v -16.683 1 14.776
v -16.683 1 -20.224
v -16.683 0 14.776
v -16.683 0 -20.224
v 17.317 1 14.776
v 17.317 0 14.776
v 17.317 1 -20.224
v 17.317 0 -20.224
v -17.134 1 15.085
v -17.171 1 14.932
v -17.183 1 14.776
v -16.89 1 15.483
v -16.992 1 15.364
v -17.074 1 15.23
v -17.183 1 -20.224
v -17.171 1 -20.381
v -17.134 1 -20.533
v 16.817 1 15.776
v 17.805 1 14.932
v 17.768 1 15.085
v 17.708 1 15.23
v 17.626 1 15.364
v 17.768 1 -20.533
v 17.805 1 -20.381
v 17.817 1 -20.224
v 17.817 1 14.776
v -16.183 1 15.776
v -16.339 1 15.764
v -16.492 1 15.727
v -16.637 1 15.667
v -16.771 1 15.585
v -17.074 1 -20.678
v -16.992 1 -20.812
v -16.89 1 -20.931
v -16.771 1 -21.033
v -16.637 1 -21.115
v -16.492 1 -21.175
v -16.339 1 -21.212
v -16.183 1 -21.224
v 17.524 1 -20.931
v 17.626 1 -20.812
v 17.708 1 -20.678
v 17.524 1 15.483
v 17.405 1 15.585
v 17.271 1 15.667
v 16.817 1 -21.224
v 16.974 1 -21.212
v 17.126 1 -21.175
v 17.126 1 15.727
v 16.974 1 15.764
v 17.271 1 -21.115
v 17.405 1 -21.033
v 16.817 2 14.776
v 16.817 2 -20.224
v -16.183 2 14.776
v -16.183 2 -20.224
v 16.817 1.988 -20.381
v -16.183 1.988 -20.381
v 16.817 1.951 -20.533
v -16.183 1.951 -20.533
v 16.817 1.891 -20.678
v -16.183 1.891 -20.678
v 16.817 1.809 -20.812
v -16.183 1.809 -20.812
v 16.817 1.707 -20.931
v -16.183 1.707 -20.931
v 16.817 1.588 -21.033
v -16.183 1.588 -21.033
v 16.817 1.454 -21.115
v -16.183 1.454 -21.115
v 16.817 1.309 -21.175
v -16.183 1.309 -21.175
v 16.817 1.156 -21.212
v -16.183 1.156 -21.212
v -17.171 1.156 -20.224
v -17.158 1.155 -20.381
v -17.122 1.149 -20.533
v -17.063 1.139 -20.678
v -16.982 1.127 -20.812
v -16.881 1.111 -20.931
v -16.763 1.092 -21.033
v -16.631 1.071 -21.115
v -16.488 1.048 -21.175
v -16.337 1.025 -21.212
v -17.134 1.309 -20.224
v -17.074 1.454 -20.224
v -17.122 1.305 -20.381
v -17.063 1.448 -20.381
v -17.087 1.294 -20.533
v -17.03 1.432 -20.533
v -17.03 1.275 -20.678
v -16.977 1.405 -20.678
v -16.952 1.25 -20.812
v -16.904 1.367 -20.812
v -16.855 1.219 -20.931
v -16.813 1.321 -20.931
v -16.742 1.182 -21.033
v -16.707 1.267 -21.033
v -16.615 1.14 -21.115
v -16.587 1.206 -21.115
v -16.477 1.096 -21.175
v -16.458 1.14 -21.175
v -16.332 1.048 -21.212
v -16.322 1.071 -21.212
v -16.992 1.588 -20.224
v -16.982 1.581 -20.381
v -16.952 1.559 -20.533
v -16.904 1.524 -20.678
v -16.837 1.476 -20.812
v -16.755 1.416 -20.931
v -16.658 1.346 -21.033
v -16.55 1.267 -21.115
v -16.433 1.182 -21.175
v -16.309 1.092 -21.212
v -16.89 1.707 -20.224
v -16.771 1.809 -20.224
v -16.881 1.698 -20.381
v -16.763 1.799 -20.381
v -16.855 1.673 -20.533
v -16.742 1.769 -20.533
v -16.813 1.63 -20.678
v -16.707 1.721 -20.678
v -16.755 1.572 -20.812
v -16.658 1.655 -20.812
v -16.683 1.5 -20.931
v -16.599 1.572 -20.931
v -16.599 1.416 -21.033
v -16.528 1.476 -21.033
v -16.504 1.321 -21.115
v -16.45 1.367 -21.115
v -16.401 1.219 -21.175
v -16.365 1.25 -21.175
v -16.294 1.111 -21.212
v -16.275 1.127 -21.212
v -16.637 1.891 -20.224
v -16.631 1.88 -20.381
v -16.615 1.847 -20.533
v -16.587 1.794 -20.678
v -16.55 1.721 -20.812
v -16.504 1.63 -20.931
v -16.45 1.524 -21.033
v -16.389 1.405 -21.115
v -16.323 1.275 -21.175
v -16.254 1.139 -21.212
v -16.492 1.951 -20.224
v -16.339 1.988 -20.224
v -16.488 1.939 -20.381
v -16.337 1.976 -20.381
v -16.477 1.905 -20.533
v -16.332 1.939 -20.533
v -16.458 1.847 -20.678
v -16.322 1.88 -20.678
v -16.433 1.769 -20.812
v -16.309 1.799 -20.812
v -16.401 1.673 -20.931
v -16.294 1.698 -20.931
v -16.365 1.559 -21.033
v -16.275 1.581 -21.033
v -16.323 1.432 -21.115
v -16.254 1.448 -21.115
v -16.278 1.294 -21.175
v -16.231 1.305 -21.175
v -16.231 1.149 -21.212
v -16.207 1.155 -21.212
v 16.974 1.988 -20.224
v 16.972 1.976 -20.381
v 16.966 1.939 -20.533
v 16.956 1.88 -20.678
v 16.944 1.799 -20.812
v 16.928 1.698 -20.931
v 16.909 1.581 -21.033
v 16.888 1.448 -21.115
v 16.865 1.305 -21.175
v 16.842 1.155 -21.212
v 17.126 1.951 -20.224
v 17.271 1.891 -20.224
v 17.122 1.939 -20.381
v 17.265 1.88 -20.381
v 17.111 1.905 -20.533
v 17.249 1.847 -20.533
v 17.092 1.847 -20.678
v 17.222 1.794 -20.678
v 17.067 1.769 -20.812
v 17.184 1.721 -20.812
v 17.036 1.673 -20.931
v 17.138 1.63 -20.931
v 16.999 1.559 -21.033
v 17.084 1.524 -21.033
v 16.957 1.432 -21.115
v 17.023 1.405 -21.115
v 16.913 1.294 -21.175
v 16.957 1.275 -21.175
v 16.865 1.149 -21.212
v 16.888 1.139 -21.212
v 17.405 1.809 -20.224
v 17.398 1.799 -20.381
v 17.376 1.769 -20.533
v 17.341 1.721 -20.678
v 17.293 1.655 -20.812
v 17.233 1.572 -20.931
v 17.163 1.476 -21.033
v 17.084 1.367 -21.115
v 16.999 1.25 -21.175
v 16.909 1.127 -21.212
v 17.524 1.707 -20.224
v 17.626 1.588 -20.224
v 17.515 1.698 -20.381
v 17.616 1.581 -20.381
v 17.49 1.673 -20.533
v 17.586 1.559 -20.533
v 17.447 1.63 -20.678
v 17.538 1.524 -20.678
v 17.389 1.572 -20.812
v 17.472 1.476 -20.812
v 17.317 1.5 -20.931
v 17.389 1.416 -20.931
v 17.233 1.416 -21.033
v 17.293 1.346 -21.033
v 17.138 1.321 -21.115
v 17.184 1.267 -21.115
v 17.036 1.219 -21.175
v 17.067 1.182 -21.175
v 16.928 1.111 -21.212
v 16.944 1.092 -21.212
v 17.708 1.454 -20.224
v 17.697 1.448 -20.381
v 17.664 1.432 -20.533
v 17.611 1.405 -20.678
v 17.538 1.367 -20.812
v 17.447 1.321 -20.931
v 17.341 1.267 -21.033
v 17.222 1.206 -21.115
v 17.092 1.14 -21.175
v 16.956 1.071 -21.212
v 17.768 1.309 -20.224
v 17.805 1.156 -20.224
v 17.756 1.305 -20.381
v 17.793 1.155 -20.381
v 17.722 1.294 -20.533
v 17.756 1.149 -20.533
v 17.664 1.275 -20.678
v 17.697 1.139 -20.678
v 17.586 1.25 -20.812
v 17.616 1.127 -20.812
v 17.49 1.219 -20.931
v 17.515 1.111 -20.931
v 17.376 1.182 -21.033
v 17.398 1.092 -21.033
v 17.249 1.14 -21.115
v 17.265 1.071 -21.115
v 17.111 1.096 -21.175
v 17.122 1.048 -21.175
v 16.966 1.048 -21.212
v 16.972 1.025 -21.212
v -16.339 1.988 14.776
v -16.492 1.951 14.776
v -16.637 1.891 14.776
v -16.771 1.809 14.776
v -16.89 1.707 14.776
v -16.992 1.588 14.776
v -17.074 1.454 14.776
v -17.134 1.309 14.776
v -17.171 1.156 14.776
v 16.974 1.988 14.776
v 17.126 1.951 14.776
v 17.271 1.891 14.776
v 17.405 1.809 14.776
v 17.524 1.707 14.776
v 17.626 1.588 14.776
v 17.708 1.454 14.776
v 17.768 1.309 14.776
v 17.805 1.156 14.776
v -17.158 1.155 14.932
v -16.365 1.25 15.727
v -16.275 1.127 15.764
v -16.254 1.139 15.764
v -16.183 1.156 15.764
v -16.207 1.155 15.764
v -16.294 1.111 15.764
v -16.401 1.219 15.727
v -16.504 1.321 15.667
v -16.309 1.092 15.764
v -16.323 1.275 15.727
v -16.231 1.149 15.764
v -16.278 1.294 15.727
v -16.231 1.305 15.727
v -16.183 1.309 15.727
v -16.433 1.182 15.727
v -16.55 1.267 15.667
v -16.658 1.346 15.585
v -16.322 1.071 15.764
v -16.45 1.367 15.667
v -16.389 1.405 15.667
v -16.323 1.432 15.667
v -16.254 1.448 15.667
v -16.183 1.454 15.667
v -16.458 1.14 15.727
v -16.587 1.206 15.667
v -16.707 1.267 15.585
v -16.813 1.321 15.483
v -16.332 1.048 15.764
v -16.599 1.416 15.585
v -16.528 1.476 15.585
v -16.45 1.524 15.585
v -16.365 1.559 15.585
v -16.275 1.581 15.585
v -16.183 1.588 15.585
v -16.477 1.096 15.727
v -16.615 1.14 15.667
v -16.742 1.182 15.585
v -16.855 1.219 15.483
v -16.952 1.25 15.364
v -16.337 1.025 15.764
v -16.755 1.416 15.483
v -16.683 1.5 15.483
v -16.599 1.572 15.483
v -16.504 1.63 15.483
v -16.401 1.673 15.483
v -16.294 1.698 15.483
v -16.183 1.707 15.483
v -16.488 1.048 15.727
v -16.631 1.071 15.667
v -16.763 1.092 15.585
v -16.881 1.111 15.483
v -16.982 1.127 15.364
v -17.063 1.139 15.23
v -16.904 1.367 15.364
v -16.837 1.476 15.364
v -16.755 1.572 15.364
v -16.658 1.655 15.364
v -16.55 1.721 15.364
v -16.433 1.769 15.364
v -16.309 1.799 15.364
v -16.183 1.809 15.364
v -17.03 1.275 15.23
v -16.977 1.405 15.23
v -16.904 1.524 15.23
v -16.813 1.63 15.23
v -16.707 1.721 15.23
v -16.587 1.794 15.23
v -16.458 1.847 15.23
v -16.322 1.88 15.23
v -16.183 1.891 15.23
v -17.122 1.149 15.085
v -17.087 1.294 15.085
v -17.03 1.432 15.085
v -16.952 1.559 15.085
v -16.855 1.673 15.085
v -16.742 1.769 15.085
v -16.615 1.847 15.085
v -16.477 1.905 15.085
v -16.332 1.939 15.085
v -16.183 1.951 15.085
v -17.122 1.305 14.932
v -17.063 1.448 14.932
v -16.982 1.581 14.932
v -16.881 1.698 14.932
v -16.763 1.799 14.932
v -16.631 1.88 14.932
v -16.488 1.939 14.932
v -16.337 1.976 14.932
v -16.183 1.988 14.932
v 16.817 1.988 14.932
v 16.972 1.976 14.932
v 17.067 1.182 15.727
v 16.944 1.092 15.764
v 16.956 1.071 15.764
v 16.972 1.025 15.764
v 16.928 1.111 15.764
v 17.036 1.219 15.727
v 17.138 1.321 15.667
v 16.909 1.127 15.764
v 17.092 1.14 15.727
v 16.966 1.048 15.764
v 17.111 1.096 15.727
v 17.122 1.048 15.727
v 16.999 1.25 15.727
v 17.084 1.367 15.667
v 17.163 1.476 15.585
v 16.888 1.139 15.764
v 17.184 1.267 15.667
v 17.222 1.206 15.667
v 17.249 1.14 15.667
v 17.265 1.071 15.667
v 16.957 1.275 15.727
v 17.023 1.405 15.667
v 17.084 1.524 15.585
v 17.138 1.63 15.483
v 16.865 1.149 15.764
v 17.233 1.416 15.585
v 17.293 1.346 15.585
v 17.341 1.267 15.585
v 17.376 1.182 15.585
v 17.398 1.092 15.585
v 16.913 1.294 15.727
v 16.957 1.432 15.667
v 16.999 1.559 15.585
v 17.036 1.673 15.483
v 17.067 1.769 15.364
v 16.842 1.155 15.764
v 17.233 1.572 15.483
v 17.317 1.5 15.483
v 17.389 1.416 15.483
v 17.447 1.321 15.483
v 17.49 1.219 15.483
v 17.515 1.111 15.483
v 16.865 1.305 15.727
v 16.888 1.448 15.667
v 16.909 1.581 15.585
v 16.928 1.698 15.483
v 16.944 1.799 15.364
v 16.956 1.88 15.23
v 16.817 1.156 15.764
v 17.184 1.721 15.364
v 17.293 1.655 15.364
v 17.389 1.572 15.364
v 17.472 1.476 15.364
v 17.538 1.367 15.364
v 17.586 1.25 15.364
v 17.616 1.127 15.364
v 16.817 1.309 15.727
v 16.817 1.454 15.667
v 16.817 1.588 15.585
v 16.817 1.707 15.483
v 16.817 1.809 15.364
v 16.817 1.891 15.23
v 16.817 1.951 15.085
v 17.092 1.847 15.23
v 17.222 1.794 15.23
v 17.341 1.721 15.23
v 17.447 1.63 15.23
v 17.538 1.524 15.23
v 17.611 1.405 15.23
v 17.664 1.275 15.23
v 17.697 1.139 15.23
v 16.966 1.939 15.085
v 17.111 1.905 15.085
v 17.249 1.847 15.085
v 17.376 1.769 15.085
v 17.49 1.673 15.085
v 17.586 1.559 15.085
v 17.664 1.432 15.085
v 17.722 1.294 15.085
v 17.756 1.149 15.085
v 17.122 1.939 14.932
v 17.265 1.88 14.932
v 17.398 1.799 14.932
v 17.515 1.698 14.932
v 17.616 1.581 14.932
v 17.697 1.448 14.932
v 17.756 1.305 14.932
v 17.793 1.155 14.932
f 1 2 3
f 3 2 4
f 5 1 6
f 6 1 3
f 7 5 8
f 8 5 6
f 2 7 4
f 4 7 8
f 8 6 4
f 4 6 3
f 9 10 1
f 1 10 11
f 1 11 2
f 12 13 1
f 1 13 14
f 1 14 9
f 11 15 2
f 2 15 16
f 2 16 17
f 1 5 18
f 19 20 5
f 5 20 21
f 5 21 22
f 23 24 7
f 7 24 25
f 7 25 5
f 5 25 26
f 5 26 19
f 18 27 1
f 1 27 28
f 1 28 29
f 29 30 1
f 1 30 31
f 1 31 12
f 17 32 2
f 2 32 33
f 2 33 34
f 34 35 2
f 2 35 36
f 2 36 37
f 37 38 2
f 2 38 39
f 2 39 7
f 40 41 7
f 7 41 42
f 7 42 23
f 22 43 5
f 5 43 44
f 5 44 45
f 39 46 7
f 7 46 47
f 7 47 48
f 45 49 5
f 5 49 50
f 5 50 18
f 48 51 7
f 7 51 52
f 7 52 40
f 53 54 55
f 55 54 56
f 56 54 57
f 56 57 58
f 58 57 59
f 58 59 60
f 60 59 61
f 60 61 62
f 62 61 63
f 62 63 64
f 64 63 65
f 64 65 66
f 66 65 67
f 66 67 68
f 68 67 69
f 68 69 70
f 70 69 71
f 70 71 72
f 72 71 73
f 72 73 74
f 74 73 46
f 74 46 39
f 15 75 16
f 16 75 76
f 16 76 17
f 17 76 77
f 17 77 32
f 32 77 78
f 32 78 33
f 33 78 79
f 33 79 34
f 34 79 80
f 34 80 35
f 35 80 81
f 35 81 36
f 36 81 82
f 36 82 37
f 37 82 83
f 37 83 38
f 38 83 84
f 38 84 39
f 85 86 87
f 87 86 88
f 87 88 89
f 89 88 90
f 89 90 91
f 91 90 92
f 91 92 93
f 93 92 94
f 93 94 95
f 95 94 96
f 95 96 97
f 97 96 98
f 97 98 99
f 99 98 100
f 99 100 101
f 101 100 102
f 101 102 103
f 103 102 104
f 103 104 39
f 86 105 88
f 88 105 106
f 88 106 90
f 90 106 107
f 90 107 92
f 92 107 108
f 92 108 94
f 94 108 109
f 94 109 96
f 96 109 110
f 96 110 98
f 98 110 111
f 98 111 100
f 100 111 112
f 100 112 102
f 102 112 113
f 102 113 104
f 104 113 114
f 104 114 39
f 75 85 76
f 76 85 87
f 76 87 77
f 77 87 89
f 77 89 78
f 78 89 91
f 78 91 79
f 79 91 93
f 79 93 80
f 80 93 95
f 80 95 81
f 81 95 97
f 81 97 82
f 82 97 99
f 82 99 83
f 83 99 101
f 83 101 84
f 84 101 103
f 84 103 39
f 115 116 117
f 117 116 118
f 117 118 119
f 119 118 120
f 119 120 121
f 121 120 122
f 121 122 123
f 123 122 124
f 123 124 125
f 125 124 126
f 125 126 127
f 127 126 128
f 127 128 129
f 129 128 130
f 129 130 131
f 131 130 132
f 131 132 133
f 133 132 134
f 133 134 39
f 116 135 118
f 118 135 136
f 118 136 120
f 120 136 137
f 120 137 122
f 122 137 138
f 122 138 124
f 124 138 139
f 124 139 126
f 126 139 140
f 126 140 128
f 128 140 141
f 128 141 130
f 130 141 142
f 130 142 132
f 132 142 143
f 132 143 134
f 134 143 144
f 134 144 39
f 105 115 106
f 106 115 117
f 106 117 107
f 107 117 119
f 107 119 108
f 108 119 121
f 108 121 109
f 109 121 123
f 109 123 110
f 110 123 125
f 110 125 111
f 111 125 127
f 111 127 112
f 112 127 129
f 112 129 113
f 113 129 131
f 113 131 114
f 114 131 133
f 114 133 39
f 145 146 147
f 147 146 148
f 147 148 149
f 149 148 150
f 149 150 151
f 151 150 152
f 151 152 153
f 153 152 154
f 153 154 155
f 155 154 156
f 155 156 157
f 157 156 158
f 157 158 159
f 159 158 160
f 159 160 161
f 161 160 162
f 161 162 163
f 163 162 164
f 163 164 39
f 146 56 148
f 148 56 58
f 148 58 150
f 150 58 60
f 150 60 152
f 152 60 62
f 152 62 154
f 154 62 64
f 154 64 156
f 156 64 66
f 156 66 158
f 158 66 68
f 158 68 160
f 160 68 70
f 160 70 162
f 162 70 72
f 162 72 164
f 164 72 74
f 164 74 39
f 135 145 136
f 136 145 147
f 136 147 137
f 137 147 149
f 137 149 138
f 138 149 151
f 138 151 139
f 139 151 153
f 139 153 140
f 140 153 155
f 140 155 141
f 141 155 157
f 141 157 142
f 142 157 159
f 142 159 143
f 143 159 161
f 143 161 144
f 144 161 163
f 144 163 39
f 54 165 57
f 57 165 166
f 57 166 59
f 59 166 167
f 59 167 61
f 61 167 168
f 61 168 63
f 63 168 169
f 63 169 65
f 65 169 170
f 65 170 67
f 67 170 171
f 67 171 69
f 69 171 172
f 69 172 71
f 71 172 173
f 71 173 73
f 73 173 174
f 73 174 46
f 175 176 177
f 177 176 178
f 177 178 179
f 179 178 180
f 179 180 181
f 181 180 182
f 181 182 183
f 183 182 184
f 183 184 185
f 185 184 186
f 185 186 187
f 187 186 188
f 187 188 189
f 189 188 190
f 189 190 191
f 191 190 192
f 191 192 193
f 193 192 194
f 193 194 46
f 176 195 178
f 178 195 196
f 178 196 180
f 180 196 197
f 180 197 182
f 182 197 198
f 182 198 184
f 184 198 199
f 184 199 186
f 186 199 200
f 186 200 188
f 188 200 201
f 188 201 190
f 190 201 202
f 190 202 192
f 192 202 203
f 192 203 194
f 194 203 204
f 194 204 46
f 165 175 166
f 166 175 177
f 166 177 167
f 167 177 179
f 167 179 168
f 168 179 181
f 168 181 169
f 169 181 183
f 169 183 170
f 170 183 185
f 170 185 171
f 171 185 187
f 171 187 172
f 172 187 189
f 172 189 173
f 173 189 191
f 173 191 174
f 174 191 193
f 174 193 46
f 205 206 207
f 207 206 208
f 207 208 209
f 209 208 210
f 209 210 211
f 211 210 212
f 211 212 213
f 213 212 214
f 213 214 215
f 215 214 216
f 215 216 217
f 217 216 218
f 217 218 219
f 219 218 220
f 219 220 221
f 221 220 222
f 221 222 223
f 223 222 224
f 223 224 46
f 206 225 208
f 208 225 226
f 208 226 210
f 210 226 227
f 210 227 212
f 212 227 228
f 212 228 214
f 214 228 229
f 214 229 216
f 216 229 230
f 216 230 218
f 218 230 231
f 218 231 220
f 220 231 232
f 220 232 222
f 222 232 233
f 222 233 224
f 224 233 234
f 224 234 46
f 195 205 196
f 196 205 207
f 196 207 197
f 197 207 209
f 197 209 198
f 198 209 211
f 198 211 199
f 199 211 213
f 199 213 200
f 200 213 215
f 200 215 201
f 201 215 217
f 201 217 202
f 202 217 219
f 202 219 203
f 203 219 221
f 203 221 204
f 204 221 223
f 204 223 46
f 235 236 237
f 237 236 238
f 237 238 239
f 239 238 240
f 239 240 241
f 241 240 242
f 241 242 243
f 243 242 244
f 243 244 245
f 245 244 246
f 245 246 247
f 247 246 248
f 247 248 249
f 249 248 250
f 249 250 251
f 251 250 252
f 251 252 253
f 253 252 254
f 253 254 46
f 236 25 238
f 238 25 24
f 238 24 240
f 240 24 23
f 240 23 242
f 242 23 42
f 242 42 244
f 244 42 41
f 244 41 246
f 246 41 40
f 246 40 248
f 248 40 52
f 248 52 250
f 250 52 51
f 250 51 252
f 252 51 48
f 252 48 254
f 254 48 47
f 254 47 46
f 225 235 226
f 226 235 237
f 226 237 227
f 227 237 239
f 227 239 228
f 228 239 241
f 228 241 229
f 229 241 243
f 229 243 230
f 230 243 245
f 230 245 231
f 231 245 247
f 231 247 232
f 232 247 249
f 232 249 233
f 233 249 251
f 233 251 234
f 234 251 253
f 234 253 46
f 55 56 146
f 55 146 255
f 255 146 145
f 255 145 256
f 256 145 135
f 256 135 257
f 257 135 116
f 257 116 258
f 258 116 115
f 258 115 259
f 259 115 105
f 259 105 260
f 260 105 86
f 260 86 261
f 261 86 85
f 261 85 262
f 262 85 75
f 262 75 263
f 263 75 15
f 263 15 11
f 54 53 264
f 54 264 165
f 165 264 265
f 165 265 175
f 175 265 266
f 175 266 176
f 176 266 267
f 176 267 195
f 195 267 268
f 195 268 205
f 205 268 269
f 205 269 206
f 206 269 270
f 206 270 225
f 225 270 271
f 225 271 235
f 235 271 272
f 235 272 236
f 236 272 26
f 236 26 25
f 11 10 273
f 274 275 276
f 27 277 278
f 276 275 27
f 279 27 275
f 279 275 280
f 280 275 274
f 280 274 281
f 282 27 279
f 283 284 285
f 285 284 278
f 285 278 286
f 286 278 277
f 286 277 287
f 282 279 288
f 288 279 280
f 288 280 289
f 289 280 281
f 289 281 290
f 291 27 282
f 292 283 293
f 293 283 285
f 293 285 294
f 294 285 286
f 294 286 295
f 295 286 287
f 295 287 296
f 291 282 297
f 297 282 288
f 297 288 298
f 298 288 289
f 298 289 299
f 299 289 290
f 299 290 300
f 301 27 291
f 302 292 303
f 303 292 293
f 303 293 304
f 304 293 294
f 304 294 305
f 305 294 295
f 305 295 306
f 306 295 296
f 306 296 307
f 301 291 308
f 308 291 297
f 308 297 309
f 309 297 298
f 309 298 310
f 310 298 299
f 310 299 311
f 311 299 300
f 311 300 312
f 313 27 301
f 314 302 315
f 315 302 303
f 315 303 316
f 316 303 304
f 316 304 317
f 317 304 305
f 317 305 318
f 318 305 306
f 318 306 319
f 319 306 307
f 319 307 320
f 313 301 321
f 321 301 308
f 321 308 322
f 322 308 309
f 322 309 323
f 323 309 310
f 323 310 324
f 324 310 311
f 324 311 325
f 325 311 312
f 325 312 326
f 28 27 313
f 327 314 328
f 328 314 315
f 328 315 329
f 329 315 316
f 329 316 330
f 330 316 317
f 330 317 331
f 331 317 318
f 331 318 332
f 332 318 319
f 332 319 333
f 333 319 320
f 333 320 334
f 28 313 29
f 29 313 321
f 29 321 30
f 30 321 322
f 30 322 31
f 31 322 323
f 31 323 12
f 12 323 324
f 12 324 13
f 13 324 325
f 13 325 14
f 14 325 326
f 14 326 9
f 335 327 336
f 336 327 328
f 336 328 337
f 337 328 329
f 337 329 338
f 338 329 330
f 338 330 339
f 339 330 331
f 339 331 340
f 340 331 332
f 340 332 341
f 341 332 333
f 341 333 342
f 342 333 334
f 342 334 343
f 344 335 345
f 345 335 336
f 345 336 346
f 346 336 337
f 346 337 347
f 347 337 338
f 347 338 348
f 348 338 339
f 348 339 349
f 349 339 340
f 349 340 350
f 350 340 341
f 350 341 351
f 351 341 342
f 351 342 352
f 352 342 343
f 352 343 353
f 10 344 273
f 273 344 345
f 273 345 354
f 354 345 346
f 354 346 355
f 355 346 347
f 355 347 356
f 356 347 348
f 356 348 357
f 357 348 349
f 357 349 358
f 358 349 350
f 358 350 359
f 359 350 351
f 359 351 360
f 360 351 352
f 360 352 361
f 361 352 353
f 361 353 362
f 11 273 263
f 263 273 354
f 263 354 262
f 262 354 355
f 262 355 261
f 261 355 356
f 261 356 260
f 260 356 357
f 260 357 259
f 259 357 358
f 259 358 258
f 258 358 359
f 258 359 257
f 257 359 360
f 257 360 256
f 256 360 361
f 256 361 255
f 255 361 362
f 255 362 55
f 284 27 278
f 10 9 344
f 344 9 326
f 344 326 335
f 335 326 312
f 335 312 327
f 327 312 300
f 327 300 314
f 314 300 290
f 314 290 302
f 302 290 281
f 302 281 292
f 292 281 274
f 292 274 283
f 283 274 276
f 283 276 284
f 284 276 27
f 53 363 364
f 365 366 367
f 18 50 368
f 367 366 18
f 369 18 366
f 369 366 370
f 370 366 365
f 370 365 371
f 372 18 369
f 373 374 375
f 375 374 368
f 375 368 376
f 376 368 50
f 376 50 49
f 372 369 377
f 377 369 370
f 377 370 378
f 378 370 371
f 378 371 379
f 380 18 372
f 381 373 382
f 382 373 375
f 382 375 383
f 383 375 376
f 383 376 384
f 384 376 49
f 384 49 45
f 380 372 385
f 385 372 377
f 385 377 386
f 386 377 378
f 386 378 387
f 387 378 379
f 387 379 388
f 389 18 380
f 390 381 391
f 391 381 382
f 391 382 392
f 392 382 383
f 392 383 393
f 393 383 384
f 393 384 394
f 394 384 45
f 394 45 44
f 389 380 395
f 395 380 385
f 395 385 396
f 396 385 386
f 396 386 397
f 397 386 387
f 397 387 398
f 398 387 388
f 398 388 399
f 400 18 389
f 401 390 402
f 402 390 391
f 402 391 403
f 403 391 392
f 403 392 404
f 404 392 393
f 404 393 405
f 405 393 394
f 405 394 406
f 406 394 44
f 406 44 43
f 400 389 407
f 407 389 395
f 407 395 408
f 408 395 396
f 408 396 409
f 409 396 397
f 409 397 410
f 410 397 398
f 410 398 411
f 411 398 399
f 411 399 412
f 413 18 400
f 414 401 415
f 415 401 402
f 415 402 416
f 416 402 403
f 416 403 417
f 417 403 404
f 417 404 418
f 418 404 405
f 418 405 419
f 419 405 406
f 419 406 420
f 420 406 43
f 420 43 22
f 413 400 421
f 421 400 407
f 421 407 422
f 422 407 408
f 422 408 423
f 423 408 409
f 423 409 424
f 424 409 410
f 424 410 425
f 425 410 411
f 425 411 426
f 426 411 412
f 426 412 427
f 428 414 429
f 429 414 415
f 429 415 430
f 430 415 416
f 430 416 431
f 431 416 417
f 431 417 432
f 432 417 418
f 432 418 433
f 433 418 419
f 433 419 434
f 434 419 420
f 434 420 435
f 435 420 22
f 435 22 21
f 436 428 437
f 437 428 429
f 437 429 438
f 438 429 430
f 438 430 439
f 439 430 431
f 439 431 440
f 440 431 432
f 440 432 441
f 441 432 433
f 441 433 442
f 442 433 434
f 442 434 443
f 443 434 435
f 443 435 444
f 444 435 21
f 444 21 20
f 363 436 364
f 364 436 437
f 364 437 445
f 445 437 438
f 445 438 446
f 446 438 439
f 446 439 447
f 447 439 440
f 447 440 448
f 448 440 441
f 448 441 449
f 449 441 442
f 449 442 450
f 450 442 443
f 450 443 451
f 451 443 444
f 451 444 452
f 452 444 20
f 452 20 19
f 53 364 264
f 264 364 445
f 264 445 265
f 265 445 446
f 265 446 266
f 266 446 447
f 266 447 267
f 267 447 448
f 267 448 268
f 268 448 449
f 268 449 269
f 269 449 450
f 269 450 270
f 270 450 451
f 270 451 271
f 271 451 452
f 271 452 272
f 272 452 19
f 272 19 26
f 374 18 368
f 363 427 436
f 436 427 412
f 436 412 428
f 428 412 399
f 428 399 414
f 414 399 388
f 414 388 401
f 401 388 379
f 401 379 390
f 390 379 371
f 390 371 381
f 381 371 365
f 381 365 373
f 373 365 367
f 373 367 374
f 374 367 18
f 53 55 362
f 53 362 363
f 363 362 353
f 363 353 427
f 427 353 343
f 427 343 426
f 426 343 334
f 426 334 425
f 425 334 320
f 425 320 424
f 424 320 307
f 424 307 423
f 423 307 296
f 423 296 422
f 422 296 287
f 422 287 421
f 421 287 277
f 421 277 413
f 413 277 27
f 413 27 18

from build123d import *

# Parameters (mm, degrees)
SKETCH_1_W      = 34
SKETCH_1_H      = 35
EXTRUDE_2_DEPTH = 1
SKETCH_3_W      = 35
SKETCH_3_H      = 37
EXTRUDE_3_DEPTH = 1
FILLET_1_R      = 1


with BuildPart() as part:
    # ｽｹｯﾁ1 → ﾎﾞｽ - 押し出し2 (new body)
    with BuildSketch(Plane(origin=(0, 0, 0), x_dir=(1, 0, 0), z_dir=(0, 1, 0))):
        with Locations((0.317073171, 2.724137931)):
            Rectangle(SKETCH_1_W, SKETCH_1_H)
    extrude(amount=EXTRUDE_2_DEPTH)

    # ｽｹｯﾁ3 → ﾎﾞｽ - 押し出し3 (add)
    with BuildSketch(Plane(origin=(0, 1, 0), x_dir=(1, 0, 0), z_dir=(0, 1, 0))):
        with Locations((0.317073171, 2.724137931)):
            Rectangle(SKETCH_3_W, SKETCH_3_H)
    extrude(amount=EXTRUDE_3_DEPTH)

    # ﾌｨﾚｯﾄ1
    fillet_1_edges = [part.edges().sort_by_distance(p)[0] for p in [
        (-17.182926829, 1.5, -21.224137931),
        (-17.182926829, 1.5, 15.775862069),
        (17.817073171, 1.5, 15.775862069),
        (17.817073171, 1.5, -21.224137931),
        (-17.182926829, 2, -2.724137931),
        (0.317073171, 2, 15.775862069),
        (17.817073171, 2, -2.724137931),
        (0.317073171, 2, -21.224137931),
    ]]
    fillet(fillet_1_edges, radius=FILLET_1_R - 0.0001)  # a hair under: the kernel refuses the full size


solid = part.part
